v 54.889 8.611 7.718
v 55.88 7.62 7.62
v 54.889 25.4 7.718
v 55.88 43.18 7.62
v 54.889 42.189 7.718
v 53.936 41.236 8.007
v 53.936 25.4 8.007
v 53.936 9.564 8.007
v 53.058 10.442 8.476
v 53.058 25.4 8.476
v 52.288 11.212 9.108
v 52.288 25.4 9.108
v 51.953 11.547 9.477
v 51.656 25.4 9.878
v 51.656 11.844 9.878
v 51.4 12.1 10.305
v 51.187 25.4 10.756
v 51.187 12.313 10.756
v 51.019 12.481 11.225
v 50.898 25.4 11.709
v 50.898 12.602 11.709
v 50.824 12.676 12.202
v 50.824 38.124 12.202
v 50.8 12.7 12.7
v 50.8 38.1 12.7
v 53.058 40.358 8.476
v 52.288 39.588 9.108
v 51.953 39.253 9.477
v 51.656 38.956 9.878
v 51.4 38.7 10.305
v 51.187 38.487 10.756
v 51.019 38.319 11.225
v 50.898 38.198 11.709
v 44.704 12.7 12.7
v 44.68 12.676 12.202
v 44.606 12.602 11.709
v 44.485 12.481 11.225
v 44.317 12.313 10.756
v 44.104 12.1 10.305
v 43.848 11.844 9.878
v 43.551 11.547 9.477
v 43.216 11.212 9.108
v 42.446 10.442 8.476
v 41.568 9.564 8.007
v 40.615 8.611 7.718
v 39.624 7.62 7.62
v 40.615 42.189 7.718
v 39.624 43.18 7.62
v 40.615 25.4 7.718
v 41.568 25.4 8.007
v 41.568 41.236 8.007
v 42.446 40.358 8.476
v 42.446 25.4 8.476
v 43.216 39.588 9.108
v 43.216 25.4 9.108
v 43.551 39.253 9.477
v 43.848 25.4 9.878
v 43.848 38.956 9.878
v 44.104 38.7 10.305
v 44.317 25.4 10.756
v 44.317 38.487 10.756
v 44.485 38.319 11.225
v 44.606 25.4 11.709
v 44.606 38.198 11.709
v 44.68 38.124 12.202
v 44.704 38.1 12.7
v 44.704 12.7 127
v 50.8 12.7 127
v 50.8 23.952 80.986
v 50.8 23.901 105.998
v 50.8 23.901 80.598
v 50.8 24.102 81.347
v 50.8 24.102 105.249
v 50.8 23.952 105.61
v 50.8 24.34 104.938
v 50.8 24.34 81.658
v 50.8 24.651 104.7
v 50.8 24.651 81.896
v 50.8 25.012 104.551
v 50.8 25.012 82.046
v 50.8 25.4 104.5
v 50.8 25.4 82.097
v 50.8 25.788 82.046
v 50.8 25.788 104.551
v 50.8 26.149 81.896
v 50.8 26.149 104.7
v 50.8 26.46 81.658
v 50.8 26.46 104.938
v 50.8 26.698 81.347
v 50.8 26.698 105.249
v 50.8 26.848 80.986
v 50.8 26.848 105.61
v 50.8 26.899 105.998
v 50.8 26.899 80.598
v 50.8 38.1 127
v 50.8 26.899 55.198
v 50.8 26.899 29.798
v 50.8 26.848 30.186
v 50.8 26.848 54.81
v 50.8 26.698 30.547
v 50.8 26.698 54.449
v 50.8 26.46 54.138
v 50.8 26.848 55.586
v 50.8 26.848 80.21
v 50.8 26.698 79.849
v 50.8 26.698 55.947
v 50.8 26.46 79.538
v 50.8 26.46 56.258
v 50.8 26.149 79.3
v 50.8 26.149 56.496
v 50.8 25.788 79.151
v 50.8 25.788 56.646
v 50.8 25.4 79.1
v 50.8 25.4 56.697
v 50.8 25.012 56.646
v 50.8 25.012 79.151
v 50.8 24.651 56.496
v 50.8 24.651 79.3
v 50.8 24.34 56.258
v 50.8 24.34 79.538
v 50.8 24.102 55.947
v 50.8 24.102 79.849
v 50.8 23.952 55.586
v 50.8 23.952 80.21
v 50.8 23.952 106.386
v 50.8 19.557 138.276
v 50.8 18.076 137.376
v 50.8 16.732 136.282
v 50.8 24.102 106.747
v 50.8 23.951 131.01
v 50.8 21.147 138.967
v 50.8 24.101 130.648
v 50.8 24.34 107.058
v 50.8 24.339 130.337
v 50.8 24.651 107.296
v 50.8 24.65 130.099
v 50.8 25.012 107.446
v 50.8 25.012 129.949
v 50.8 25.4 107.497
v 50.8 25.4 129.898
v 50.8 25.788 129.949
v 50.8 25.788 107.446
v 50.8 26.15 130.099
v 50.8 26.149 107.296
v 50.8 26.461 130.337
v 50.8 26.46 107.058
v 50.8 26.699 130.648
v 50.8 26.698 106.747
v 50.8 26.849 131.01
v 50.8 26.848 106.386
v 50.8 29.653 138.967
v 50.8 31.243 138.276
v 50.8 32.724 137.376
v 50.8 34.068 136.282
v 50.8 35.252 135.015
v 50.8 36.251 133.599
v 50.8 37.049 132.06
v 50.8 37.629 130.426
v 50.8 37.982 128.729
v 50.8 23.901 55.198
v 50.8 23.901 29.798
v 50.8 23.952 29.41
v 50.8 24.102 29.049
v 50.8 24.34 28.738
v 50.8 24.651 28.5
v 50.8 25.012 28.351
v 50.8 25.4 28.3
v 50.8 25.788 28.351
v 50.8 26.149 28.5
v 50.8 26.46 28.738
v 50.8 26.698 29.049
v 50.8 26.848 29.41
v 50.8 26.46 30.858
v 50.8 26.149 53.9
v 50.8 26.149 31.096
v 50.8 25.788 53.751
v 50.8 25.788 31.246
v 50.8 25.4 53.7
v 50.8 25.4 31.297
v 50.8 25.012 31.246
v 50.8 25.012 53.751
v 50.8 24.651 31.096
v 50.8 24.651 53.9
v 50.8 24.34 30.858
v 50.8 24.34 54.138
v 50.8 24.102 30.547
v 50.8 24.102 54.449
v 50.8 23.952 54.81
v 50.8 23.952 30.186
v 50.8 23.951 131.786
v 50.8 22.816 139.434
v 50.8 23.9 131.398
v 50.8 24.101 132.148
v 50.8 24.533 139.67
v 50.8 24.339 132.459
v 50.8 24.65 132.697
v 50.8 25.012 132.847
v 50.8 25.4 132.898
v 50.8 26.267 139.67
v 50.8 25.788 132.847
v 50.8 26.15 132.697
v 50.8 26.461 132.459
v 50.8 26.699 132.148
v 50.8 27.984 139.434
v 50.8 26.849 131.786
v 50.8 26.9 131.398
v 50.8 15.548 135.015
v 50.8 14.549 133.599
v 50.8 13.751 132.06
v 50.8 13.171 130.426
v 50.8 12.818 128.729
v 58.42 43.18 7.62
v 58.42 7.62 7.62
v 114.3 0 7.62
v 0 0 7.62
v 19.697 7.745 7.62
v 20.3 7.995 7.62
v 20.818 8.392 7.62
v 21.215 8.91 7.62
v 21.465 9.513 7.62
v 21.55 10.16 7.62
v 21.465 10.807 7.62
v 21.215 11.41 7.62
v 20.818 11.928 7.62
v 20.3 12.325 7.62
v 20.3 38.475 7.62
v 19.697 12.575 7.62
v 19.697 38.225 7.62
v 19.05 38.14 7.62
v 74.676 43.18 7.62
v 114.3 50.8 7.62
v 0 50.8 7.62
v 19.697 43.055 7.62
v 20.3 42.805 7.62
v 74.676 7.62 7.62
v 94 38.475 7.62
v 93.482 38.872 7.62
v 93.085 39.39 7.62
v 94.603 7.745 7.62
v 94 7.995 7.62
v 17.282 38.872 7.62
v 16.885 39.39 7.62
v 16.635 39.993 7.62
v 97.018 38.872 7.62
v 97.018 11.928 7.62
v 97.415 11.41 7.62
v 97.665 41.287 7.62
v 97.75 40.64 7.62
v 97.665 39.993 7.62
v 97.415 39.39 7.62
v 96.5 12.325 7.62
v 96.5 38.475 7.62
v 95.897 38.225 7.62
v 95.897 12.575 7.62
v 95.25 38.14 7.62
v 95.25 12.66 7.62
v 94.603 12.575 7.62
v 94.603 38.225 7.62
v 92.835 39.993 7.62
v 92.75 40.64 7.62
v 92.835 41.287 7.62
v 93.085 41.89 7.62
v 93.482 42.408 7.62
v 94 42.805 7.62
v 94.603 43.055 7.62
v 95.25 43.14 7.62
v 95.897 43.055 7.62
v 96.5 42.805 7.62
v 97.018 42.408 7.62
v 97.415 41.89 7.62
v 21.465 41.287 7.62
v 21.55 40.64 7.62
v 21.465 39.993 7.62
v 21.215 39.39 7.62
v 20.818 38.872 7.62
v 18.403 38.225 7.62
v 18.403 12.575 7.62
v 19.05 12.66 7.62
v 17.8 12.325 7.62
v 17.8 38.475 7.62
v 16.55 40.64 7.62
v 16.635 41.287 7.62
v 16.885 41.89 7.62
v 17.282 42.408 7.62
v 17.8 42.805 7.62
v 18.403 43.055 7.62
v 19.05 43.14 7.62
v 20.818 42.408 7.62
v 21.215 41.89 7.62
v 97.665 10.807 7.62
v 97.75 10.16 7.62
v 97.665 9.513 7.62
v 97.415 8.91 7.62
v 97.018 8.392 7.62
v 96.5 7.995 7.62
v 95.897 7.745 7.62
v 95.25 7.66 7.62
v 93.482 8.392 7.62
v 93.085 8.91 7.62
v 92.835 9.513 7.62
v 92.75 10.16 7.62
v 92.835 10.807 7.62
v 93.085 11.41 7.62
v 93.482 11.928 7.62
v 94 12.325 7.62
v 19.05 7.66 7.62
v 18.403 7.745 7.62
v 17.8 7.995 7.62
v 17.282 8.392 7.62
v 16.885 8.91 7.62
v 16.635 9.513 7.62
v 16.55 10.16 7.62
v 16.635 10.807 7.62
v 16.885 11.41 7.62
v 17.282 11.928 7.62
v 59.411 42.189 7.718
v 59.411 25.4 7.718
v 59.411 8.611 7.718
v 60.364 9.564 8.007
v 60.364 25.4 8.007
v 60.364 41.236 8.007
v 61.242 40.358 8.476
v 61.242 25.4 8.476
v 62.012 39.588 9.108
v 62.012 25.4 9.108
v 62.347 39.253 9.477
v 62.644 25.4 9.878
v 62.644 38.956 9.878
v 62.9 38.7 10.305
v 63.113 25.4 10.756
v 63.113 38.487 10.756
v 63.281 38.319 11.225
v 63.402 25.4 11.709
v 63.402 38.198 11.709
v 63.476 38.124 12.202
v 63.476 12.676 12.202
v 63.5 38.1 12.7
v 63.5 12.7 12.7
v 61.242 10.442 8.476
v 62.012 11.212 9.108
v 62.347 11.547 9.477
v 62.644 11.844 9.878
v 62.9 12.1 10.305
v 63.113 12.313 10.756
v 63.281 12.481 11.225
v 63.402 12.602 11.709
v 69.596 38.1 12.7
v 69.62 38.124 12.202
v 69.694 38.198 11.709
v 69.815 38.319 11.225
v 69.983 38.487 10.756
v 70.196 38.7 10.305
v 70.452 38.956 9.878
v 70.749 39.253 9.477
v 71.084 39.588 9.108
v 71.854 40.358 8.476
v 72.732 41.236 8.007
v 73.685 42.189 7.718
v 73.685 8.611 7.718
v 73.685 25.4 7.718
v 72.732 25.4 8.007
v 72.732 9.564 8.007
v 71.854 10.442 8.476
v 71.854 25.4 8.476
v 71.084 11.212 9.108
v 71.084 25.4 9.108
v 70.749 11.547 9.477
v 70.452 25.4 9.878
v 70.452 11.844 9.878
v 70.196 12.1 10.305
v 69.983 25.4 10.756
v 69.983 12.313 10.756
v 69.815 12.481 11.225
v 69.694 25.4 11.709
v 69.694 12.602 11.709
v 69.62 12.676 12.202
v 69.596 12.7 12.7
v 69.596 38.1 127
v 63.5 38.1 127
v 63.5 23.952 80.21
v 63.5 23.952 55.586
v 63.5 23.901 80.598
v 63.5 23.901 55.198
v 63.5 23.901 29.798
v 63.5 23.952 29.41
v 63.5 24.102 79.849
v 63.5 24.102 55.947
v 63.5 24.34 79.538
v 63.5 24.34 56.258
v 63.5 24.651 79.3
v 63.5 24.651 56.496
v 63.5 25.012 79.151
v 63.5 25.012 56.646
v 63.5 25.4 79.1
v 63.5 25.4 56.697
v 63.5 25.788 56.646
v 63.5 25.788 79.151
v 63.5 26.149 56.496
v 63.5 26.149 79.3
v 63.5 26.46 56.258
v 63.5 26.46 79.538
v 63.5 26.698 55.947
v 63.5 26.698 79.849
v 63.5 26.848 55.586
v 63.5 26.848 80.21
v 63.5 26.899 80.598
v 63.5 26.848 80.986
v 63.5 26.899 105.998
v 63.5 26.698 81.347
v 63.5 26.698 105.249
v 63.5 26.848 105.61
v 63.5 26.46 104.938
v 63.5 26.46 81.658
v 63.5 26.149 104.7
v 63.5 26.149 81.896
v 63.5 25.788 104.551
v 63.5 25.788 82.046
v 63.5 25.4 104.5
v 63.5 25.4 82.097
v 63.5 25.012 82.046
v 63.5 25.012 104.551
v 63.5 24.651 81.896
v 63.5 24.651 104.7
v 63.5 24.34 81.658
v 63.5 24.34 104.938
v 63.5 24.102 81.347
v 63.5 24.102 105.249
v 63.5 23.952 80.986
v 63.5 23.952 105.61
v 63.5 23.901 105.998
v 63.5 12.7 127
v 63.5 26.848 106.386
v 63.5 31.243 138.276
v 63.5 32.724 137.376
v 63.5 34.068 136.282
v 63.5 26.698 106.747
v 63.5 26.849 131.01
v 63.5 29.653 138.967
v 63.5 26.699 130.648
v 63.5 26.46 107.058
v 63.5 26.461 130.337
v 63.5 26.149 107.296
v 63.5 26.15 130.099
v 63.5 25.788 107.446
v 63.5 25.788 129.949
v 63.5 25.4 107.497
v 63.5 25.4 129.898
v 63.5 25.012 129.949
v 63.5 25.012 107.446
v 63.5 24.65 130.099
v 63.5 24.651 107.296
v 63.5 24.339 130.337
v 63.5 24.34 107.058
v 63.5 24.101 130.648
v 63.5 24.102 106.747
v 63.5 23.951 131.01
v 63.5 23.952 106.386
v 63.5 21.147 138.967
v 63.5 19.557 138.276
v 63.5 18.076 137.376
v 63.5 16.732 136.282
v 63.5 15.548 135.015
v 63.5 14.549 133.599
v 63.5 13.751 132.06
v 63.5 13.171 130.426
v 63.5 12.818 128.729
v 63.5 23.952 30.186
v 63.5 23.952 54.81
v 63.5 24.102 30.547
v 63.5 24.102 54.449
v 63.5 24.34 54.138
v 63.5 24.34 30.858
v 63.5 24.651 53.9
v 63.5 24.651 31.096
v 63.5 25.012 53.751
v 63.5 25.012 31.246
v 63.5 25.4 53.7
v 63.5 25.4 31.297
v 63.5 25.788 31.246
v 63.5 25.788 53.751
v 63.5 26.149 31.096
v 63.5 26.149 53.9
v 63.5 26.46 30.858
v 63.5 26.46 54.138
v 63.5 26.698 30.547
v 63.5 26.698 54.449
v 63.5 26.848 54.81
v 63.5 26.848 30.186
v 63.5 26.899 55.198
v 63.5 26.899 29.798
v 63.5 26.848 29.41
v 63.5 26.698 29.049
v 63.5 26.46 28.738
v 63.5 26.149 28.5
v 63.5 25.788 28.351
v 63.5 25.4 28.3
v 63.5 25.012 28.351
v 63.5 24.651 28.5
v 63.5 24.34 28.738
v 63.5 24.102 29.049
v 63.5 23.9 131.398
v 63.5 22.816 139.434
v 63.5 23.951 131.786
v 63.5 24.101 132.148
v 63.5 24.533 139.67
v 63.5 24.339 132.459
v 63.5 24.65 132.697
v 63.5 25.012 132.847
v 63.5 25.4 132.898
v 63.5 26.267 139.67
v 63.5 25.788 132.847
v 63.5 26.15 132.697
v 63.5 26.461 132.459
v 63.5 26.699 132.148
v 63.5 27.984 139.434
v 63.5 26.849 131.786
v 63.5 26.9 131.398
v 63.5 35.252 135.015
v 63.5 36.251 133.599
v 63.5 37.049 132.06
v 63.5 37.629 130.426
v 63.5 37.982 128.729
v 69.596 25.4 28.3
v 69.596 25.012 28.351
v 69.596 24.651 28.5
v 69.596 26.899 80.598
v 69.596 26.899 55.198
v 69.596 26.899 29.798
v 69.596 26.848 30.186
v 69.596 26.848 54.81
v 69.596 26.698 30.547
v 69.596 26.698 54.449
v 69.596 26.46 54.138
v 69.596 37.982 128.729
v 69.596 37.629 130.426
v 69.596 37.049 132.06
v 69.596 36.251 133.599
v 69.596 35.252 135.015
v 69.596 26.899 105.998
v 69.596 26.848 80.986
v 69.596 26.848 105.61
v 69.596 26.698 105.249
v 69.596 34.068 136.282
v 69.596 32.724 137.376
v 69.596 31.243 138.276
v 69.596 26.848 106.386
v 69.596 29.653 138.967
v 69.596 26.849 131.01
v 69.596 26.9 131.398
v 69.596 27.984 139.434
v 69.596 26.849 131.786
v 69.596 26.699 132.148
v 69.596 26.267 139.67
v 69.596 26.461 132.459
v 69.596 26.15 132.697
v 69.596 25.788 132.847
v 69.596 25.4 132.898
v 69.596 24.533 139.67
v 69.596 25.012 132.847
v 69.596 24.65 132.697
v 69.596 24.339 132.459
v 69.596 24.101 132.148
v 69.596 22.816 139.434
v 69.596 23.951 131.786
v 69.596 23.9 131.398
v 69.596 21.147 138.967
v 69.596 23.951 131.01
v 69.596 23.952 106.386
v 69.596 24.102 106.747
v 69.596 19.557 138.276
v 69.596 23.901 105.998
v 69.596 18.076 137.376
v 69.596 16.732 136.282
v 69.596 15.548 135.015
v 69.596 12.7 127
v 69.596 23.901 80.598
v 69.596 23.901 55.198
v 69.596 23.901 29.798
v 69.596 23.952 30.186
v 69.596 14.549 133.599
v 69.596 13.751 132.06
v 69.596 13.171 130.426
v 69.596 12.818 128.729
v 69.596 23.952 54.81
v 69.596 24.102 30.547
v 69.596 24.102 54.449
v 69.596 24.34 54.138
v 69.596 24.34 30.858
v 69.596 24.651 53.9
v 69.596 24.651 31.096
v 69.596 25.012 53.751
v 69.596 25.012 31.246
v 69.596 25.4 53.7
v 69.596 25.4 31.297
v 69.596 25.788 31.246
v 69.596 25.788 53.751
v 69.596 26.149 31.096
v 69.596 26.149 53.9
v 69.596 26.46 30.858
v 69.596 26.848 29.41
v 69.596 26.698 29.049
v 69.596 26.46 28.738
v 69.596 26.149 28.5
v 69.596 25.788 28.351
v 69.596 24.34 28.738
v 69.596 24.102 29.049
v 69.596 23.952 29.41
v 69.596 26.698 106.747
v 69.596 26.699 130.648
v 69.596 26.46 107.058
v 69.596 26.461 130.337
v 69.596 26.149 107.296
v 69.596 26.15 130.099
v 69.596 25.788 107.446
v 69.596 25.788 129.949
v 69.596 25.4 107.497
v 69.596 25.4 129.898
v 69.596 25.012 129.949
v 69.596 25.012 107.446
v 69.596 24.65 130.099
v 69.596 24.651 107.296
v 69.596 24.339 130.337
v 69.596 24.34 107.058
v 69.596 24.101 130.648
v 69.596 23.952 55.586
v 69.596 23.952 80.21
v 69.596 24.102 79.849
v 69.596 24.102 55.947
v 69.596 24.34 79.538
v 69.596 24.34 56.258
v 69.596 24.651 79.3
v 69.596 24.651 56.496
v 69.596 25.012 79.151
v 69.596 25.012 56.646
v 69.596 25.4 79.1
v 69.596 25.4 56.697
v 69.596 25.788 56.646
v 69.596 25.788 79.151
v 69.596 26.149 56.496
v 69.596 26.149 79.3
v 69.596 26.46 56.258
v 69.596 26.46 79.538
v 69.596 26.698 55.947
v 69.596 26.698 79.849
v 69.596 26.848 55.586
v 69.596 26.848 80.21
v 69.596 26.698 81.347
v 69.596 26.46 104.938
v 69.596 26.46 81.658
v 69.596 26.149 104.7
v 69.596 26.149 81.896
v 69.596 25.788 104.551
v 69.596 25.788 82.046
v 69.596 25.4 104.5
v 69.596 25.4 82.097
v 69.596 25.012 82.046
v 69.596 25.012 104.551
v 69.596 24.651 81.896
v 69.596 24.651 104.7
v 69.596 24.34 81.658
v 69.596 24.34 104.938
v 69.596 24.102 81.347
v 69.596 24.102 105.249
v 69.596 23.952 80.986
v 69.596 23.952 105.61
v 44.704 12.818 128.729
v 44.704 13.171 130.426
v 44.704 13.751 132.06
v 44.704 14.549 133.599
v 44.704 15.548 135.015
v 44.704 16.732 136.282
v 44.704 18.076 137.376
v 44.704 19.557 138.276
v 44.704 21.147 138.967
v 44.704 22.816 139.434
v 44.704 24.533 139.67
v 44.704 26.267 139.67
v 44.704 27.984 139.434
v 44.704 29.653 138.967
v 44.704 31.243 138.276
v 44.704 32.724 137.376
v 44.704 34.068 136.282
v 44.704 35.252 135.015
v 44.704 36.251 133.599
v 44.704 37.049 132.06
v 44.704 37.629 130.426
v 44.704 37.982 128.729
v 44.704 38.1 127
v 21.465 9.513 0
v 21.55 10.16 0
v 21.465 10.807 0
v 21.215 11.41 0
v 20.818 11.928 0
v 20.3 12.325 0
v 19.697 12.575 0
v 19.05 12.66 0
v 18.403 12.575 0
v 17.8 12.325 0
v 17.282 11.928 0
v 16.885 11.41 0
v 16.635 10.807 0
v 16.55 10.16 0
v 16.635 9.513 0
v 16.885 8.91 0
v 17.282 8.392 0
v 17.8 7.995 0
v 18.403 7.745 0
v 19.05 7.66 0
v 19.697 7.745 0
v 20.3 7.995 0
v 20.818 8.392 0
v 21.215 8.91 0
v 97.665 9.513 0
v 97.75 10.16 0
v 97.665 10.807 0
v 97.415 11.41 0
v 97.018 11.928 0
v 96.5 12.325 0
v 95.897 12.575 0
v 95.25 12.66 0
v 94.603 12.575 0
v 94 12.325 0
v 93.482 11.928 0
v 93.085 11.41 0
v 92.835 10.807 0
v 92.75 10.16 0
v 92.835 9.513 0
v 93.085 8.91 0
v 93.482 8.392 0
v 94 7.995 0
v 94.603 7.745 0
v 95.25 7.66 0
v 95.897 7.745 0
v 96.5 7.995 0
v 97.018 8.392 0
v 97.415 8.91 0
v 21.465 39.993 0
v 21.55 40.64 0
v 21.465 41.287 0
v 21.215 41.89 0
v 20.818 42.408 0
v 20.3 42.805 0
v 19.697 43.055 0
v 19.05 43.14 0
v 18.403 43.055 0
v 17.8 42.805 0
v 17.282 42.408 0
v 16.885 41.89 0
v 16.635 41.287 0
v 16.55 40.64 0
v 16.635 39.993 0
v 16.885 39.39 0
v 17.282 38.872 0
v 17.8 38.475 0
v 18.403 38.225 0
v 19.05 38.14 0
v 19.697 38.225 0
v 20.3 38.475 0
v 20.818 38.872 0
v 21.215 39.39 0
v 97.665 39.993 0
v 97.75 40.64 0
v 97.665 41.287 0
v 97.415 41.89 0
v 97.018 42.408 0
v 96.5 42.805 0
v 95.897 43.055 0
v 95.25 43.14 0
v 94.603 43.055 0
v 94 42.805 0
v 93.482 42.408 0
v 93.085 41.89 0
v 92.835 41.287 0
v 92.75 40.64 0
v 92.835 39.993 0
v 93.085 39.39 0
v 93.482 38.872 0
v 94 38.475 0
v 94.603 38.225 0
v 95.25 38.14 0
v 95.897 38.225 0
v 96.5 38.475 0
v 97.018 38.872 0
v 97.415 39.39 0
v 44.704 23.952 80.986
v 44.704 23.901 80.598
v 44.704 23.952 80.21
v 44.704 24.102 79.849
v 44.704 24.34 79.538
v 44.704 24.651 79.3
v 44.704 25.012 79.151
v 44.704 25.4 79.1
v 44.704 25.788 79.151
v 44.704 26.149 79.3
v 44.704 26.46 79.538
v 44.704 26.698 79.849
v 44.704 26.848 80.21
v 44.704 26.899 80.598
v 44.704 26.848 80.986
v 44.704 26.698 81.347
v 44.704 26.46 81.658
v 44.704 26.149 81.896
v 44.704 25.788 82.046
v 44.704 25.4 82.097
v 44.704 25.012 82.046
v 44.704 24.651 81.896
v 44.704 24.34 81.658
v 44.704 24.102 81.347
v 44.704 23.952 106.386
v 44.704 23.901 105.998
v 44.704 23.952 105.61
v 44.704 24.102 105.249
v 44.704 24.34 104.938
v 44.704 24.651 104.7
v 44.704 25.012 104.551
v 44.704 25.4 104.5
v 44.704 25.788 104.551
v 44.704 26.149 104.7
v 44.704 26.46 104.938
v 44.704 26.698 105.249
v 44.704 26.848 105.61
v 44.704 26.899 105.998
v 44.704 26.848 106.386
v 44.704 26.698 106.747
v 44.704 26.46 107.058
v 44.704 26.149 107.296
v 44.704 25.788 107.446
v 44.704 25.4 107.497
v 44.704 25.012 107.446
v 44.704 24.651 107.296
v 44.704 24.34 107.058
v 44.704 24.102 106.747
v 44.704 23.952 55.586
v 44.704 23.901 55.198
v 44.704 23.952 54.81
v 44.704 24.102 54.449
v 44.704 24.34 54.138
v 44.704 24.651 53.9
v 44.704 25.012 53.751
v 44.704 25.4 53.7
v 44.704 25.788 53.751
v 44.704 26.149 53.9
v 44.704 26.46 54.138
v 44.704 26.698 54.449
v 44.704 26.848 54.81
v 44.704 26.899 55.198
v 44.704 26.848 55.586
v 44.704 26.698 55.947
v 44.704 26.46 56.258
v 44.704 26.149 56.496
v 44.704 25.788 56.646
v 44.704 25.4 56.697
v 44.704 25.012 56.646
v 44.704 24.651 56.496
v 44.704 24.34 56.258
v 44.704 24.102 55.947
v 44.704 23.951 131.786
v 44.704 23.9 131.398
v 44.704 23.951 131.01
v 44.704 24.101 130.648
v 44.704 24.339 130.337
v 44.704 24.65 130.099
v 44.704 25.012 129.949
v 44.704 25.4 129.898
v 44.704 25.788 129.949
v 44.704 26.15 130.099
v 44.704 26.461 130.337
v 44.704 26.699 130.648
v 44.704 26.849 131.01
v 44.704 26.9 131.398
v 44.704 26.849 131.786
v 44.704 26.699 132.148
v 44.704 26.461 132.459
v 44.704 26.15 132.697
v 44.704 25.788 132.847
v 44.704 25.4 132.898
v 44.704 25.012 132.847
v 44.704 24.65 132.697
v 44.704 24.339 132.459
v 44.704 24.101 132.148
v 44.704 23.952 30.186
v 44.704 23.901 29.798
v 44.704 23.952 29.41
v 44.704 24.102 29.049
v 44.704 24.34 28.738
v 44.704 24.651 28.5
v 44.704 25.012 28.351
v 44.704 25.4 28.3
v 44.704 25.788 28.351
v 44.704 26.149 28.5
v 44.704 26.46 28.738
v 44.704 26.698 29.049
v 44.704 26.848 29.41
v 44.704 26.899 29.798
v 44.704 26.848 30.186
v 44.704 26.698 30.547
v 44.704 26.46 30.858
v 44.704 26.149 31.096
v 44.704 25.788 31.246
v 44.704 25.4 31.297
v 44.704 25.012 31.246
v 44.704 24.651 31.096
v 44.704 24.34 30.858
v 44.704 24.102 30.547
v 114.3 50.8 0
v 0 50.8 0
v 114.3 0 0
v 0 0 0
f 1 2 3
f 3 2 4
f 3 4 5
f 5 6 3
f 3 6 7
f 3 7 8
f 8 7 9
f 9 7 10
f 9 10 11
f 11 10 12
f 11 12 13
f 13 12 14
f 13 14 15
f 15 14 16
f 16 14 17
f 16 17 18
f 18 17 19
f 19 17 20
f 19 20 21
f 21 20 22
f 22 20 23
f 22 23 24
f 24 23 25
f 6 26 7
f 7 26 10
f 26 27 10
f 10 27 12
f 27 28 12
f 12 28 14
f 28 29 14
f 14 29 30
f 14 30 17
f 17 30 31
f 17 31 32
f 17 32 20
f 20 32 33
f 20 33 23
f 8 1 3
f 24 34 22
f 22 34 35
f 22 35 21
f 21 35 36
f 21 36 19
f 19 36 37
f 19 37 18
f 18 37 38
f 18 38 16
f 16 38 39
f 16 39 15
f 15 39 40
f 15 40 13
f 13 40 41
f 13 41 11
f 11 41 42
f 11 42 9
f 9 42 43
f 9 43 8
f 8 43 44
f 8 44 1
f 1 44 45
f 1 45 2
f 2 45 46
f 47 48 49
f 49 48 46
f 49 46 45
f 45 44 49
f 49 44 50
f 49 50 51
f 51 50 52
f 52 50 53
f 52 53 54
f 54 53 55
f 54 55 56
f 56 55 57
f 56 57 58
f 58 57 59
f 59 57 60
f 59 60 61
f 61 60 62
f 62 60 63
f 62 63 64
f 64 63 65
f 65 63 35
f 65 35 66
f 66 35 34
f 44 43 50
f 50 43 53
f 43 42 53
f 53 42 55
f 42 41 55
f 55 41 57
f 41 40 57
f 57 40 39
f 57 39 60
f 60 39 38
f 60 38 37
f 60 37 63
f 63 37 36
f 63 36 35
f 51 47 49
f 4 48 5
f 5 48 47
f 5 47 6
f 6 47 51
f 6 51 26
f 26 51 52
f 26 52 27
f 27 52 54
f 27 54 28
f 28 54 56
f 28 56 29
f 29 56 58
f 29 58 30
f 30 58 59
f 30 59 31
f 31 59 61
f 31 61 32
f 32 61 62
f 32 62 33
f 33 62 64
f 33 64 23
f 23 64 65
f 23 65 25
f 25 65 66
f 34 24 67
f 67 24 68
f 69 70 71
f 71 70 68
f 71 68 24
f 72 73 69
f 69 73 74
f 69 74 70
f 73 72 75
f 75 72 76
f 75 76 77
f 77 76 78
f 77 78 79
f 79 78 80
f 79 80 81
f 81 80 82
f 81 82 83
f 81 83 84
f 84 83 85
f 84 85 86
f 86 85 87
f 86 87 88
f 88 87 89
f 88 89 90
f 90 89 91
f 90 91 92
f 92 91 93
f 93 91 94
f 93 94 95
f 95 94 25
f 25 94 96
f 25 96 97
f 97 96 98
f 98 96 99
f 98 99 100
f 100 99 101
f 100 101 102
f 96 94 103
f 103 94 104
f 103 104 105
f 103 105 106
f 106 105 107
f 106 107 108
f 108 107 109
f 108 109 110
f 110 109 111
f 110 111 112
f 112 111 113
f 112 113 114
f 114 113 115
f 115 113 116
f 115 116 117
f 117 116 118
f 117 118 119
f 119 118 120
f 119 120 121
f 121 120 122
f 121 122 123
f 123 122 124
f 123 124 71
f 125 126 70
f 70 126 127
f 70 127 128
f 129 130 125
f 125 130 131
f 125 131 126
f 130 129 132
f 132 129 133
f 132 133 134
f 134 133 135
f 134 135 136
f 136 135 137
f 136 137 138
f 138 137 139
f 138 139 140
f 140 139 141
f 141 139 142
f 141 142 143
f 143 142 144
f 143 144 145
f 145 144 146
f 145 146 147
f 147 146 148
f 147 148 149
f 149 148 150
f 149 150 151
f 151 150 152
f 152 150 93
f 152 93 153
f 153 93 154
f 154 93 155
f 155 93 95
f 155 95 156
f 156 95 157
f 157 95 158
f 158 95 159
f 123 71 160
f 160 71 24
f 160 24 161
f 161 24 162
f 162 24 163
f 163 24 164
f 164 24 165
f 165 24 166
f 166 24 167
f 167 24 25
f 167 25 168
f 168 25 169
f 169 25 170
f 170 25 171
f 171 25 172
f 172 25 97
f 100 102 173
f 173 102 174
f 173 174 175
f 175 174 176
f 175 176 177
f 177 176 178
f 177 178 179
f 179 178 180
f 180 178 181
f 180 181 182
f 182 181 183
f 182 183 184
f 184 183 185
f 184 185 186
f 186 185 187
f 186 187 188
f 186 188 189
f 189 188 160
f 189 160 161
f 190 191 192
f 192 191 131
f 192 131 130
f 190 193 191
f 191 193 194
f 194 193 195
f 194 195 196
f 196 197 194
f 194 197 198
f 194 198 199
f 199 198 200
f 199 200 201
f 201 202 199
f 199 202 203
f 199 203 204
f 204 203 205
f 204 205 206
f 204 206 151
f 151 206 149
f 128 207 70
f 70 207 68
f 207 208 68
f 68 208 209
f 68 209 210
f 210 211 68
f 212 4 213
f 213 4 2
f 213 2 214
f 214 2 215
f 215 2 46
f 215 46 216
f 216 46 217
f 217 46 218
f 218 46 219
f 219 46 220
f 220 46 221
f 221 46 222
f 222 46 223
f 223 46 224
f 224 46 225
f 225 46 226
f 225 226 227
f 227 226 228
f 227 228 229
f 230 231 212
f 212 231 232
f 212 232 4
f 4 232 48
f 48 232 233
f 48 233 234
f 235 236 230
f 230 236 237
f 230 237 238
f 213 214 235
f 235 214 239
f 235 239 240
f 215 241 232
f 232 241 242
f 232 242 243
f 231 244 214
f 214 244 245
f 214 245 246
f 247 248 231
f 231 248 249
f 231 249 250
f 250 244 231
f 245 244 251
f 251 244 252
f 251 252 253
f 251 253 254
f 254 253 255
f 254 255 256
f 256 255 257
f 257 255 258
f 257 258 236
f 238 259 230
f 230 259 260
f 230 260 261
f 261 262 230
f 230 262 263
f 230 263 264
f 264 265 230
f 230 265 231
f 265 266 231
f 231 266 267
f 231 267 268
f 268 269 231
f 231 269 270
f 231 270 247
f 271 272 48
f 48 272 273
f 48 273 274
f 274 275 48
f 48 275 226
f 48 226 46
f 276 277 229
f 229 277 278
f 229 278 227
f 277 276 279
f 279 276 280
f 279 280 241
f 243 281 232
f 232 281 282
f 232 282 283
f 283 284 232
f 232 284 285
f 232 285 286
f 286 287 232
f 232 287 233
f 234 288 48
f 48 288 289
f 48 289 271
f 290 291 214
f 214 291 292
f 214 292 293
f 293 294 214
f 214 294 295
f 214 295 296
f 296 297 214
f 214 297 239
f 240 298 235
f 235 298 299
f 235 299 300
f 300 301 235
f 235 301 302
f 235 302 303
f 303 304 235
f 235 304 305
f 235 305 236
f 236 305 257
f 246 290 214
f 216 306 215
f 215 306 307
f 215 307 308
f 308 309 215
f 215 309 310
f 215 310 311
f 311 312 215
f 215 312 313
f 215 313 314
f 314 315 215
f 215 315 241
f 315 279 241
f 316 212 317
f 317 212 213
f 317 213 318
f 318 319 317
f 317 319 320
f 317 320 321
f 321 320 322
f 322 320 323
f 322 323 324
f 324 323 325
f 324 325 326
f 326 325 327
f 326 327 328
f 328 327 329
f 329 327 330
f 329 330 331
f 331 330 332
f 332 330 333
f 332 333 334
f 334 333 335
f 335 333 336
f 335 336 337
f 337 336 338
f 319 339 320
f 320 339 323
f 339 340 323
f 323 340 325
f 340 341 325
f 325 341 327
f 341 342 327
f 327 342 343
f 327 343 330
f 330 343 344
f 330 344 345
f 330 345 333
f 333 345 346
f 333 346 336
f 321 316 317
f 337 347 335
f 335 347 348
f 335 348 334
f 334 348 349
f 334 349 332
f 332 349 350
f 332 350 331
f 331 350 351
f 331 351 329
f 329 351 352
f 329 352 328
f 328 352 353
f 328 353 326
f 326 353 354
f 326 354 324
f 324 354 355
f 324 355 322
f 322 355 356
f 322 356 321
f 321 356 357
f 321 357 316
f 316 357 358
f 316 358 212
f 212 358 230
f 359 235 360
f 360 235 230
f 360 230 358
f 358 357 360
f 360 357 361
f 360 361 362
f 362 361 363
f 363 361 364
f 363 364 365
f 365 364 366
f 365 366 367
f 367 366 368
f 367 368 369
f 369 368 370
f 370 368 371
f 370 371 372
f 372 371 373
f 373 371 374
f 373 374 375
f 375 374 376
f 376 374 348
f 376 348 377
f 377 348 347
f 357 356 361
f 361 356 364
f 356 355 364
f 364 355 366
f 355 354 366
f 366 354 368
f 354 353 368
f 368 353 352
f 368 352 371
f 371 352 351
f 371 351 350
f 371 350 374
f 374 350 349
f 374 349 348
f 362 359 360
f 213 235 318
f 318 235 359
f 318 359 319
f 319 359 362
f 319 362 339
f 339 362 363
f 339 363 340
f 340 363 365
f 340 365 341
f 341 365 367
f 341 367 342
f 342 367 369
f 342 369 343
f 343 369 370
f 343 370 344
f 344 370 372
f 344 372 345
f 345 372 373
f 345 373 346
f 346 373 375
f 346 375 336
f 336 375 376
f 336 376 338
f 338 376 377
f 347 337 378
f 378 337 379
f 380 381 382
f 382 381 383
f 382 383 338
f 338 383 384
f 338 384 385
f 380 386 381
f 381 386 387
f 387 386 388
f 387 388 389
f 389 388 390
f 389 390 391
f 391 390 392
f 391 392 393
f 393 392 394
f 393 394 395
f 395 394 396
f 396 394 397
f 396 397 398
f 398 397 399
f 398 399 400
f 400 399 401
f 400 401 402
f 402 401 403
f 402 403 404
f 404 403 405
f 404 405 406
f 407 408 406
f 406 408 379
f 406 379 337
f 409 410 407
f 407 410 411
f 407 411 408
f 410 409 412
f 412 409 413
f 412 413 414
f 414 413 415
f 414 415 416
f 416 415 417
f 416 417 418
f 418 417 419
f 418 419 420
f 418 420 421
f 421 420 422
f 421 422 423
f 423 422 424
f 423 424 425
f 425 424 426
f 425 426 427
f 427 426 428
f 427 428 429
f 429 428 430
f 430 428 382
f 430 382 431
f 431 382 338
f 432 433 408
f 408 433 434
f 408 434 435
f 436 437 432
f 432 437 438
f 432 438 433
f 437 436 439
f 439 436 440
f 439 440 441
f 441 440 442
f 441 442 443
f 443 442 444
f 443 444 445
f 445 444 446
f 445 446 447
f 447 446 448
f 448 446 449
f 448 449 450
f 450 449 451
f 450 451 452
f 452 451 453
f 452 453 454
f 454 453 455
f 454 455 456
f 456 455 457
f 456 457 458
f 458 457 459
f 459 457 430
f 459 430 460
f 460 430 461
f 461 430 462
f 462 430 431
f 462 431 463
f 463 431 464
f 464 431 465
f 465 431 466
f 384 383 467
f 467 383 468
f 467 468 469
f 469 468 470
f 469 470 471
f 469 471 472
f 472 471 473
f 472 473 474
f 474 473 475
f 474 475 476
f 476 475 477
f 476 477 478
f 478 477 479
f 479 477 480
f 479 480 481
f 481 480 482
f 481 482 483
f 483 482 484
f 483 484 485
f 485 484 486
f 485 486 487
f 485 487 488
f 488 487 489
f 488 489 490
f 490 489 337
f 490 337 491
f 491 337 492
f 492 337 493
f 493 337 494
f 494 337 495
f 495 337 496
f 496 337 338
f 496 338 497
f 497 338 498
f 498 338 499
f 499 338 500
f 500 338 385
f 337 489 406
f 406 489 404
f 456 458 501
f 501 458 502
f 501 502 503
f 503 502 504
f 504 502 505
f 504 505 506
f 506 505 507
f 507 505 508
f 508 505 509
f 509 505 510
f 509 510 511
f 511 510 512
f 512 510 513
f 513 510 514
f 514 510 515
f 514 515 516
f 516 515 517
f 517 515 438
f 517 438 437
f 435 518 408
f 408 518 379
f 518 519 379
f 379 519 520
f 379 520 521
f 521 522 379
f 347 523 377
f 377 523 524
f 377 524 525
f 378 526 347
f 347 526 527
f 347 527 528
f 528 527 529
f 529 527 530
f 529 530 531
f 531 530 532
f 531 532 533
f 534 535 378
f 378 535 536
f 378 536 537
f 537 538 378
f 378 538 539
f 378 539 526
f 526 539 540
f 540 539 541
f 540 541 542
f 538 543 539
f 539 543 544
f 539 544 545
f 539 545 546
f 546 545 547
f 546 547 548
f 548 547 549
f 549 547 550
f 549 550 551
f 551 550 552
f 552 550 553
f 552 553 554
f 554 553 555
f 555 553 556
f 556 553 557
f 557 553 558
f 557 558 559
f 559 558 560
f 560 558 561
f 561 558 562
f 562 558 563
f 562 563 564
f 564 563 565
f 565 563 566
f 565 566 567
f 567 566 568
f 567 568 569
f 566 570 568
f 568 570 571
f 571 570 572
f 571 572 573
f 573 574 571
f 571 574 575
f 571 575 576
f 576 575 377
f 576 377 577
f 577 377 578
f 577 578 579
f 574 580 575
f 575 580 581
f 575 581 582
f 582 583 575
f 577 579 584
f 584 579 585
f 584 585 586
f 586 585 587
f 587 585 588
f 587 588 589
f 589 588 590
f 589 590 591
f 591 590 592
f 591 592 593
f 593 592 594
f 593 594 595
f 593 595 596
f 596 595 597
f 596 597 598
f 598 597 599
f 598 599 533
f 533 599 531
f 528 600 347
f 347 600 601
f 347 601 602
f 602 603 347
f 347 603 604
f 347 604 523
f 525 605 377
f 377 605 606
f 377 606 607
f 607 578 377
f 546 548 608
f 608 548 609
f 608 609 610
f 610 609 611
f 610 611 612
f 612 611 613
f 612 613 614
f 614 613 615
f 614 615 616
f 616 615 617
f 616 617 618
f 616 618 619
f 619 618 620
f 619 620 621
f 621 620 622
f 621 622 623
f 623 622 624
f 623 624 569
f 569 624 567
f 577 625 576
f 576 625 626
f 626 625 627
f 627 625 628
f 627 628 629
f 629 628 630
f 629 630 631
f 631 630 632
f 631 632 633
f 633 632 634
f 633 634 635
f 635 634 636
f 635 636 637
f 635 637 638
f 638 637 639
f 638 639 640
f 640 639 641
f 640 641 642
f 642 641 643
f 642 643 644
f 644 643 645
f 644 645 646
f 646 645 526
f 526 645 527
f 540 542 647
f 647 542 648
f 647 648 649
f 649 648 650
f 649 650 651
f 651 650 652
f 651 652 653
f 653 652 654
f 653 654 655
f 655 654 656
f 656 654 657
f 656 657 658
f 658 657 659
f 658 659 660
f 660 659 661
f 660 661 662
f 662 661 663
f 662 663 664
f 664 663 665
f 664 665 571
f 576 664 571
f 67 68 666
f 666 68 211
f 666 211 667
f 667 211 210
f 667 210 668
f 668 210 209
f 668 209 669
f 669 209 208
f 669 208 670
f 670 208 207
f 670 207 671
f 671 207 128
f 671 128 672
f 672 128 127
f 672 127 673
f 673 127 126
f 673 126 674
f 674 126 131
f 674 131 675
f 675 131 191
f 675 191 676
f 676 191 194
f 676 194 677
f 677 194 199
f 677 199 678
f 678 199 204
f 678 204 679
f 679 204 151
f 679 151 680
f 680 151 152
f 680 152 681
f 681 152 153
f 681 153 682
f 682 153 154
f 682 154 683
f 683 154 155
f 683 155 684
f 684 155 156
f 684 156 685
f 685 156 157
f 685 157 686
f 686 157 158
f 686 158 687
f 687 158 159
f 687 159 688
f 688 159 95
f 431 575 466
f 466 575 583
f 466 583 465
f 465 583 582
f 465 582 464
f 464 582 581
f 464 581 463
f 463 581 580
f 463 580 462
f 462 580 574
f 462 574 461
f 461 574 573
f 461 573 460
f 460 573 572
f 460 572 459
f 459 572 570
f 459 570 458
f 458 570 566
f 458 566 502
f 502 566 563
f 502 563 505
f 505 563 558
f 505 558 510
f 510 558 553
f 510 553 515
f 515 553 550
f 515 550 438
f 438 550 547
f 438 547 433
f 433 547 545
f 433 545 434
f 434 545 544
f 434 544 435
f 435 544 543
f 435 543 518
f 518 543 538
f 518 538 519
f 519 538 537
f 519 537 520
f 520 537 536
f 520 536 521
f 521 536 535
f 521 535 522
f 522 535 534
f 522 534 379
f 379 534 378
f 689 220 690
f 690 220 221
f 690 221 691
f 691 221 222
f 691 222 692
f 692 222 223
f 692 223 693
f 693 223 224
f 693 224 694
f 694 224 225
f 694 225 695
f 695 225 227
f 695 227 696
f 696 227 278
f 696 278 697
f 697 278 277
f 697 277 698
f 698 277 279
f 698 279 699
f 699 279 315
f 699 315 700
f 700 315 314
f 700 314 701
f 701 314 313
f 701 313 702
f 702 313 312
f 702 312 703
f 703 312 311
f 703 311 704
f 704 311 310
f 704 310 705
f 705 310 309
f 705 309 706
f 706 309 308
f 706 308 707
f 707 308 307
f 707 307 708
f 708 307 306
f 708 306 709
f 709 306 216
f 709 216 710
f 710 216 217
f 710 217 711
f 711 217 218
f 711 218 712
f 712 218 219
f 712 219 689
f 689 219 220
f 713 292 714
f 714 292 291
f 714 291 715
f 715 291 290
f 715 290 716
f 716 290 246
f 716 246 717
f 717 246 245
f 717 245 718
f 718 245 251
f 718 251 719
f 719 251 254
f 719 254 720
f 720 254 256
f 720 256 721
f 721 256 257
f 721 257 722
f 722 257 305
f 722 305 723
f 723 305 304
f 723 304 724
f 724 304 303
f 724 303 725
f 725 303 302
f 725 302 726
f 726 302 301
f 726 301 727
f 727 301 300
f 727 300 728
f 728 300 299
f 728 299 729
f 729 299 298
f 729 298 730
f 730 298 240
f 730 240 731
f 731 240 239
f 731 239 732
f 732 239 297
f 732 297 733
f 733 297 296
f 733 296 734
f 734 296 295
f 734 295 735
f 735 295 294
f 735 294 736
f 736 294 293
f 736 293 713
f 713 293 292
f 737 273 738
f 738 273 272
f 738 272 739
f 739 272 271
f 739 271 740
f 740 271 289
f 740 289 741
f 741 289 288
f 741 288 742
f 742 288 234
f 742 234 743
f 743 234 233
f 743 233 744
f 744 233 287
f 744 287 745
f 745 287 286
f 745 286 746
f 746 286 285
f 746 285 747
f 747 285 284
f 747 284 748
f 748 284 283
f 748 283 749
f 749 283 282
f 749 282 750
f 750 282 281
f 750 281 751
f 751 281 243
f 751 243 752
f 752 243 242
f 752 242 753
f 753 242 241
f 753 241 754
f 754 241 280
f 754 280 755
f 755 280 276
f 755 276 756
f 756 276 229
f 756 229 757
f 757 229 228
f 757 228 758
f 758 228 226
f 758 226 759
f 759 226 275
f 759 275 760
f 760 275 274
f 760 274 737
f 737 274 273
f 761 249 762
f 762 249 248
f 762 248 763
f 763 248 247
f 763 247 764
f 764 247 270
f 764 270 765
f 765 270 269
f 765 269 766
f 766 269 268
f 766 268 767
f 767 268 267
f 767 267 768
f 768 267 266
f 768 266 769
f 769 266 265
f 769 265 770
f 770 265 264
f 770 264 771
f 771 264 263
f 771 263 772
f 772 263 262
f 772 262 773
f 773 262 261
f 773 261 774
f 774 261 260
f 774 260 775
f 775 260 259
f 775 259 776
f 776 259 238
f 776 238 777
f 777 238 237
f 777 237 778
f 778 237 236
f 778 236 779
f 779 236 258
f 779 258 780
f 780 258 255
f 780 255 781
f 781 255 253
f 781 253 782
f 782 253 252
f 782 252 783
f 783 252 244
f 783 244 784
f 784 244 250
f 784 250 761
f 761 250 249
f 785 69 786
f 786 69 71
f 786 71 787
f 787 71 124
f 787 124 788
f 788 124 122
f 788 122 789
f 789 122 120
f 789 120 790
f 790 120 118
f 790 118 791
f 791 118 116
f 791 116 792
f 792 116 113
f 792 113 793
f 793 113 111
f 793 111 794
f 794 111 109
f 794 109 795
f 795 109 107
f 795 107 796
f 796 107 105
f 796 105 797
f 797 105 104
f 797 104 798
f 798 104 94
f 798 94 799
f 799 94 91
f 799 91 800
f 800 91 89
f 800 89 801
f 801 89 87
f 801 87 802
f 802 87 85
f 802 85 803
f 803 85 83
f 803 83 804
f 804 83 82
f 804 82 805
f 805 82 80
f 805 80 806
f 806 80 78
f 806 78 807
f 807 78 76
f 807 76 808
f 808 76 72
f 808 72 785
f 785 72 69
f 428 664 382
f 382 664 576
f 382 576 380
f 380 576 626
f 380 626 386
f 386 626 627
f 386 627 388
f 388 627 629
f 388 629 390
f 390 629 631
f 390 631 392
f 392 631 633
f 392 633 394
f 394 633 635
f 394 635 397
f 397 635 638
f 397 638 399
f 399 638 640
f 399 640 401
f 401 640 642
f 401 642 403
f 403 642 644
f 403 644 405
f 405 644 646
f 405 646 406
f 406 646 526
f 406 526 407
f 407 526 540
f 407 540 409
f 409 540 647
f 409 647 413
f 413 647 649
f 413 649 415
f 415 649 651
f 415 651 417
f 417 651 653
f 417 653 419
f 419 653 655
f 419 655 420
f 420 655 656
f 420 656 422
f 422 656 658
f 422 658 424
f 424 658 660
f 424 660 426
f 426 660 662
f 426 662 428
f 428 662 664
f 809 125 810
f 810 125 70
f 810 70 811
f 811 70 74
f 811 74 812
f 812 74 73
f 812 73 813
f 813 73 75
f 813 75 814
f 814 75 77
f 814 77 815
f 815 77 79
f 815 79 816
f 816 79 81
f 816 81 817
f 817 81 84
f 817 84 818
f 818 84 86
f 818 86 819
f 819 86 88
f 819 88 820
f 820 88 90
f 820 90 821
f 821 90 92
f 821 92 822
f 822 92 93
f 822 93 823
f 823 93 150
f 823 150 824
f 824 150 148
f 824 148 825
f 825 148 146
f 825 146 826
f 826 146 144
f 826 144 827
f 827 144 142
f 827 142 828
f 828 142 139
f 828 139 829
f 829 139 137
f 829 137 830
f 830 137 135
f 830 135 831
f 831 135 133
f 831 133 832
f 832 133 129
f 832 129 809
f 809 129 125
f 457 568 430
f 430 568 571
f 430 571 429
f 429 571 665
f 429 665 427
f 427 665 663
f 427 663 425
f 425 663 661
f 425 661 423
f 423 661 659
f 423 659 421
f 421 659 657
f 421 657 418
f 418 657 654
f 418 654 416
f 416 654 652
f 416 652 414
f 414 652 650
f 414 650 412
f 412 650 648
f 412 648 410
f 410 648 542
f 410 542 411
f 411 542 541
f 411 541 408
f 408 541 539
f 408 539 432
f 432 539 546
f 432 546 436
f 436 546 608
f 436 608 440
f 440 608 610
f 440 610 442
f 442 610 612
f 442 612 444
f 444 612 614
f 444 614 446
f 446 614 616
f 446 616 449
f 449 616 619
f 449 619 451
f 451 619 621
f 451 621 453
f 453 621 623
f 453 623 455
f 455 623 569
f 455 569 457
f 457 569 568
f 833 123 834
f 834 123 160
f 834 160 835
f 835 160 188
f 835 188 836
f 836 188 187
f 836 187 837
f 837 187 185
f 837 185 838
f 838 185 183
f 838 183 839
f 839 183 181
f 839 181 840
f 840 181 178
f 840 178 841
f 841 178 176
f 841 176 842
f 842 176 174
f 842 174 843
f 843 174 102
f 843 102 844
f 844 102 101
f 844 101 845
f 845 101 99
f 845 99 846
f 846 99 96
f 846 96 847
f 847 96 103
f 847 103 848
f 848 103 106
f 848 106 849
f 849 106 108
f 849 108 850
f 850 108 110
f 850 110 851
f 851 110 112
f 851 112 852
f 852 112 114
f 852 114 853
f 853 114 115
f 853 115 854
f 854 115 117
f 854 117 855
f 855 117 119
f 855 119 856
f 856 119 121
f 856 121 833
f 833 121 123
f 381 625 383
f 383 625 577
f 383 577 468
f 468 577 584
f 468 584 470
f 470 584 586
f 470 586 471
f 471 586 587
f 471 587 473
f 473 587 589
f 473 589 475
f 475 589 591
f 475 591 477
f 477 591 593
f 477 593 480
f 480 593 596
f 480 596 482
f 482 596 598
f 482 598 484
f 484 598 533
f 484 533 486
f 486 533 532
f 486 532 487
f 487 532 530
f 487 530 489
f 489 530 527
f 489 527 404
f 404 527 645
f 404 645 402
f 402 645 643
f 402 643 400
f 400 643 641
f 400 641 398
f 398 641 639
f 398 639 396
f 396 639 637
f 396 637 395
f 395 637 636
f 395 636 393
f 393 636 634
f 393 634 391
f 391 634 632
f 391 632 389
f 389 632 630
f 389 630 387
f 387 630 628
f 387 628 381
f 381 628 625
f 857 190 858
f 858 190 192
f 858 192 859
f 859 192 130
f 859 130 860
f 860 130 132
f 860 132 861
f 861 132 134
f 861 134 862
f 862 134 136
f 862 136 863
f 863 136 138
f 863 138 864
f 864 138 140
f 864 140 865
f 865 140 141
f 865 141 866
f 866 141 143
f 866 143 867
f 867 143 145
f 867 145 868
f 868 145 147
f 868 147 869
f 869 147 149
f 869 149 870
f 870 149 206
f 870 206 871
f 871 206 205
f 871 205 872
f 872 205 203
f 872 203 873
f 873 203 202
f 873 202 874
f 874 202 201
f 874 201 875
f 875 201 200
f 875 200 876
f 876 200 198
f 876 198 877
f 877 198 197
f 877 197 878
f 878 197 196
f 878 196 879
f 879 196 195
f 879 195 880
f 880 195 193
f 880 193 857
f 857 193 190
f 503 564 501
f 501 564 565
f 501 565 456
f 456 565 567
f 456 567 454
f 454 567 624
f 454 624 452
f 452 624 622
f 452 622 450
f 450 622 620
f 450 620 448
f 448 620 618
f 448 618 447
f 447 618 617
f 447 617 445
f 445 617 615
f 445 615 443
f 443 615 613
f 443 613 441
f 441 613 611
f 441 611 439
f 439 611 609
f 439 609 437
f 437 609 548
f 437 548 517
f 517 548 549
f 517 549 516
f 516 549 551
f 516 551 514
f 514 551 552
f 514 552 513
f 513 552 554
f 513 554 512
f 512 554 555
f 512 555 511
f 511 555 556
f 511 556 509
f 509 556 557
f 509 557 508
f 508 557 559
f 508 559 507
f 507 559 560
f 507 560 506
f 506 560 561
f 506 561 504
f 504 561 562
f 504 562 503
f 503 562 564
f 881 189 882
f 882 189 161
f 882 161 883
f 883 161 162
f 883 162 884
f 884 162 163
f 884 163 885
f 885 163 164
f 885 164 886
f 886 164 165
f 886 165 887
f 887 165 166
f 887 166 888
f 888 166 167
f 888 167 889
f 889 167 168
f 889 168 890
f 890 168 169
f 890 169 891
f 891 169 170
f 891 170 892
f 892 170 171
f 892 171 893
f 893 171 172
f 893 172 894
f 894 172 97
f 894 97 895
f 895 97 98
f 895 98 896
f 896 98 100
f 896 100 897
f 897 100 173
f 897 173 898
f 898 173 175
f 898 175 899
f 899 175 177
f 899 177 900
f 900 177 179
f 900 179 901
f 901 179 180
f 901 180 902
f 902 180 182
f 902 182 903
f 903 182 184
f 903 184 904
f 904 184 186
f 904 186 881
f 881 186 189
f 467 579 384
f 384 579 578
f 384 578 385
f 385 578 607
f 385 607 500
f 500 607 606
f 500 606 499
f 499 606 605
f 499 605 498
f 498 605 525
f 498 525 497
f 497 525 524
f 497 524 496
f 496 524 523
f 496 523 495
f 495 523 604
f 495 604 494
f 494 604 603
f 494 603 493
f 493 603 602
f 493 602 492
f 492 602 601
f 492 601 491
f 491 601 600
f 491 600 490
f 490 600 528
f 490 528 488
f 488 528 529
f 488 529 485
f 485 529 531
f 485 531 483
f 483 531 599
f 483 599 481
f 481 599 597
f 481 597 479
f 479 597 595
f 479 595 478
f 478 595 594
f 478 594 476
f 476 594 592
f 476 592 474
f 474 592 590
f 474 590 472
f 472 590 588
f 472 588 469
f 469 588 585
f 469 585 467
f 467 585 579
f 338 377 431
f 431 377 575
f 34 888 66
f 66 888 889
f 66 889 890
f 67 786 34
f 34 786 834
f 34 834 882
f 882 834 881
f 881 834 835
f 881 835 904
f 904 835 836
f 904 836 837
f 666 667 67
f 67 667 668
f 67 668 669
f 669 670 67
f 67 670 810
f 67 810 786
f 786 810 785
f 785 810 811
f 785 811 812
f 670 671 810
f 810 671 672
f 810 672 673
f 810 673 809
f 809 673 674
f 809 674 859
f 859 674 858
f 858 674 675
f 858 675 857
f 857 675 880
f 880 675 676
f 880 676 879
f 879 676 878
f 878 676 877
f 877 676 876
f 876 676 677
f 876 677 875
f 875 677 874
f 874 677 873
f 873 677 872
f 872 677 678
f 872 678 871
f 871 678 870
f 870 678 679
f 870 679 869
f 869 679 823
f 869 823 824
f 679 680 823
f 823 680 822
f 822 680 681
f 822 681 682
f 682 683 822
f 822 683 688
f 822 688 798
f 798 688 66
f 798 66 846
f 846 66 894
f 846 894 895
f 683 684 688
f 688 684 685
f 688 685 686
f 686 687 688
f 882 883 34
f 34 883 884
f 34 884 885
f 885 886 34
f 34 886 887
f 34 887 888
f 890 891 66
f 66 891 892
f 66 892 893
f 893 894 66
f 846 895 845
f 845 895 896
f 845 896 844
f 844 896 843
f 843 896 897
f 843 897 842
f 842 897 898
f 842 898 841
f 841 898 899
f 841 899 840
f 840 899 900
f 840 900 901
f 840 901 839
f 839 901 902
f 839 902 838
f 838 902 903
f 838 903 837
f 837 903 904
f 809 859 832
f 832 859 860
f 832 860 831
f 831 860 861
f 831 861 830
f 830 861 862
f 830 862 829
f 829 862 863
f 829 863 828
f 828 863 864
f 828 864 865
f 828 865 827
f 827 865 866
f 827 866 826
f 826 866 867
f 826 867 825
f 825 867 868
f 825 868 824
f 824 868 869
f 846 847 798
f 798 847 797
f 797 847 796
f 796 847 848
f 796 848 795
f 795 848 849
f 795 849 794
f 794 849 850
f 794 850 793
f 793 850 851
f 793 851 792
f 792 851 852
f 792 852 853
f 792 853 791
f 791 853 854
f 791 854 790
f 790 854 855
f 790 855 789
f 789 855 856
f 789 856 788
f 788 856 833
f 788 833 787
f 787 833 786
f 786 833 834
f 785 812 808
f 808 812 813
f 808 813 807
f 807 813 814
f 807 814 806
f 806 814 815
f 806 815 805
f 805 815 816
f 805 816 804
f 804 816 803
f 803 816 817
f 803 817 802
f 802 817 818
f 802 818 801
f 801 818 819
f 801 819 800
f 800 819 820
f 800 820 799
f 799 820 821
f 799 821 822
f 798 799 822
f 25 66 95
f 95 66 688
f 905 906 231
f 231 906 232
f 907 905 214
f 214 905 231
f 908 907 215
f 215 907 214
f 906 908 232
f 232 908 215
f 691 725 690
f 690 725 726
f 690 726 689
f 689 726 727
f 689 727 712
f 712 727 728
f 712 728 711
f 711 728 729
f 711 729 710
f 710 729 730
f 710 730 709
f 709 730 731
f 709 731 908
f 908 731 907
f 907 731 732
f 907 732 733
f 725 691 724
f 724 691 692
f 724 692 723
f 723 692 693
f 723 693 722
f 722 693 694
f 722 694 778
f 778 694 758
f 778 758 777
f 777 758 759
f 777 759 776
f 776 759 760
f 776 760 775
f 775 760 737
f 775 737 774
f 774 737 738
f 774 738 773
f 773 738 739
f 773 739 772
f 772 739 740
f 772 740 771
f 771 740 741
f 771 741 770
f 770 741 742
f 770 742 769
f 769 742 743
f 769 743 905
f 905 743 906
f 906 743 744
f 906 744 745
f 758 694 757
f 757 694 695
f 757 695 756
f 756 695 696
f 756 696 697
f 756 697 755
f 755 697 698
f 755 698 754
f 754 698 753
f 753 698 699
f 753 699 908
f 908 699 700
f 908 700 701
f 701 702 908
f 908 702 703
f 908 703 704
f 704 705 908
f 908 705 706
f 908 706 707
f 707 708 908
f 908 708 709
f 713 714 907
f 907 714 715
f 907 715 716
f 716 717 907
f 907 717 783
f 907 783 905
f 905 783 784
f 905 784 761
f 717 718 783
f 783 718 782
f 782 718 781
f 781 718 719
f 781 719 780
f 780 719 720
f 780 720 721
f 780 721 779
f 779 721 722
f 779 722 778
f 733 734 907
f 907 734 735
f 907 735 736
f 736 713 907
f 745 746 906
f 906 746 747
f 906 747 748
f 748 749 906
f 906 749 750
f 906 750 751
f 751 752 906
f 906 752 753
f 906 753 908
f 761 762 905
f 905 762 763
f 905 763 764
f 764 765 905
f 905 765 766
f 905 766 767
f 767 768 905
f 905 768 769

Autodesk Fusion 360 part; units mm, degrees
sketch "Sketch1" plane through (0, 0, 0) normal (0, 0, 1) x (1, 0, 0)
  line L0 (0, 0) -> (114.3, 0)
  line L1 (114.3, 0) -> (114.3, 50.8)
  line L2 (114.3, 50.8) -> (0, 50.8)
  line L3 (0, 50.8) -> (0, 0)
  point P0 (114.3, 25.4)
  point P1 (57.15, 0)
  dimension "d1" = 114.3
  dimension "d4" = 50.8
extrude "Extrude4" add sketch "Sketch1" along normal blind 7.62
sketch "Sketch2" plane through (0, 0, 7.62) normal (0, 0, 1) x (-1, 0, 0)
  line L0 (0, -50.8) -> (0, 0)
  line L1 (0, 0) -> (-114.3, 0)
  line L2 (-114.3, 0) -> (-114.3, -50.8)
  line L3 (-114.3, -50.8) -> (0, -50.8)
  line L4 (-44.704, -38.1) -> (-69.596, -38.1)
  line L5 (-69.596, -38.1) -> (-69.596, -12.7)
  line L6 (-69.596, -12.7) -> (-44.704, -12.7)
  line L7 (-44.704, -12.7) -> (-44.704, -38.1)
  line L8 (-63.5, -38.1) -> (-50.8, -38.1)
  line L9 (-50.8, -38.1) -> (-50.8, -12.7)
  line L10 (-50.8, -12.7) -> (-63.5, -12.7)
  line L11 (-63.5, -12.7) -> (-63.5, -38.1)
  line L12 (-63.5, -38.1) -> (-50.8, -12.7) construction
  line L13 (-50.8, -38.1) -> (-63.5, -12.7) construction
  circle A0 centre (-19.05, -40.64) radius 2.5
  line L14 (-57.15, -50.8) -> (-57.15, 0) construction
  line L15 (0, -25.4) -> (-114.3, -25.4) construction
  circle A1 centre (-95.25, -40.64) radius 2.5
  circle A2 centre (-19.05, -10.16) radius 2.5
  circle A3 centre (-95.25, -10.16) radius 2.5
  point P0 (-57.15, -38.1)
  point P1 (-69.596, -25.4)
  point P2 (-114.3, -25.4)
  point P3 (-57.15, 0)
  point P4 (-57.15, -25.4)
  dimension "d15" = 25.4
  dimension "d23" = 12.7
  dimension "d24" = 5
  dimension "d25" = 76.2
  dimension "d26" = 30.48
  dimension "d27" = 15.24
  dimension "d43" = 6.096
  dimension "d45" = 6.096
extrude "Extrude5" add sketch "Sketch2" along normal blind 132.08 contours L4 L6 L7 L9 | L4 L5 L6 L11
sketch "Sketch3" plane through (69.596, 0, 0) normal (1, 0, 0) x (0, 1, 0)
  line L0 (12.7, 7.62) -> (38.1, 7.62)
  line L1 (38.1, 7.62) -> (38.1, 139.7)
  line L2 (38.1, 139.7) -> (12.7, 139.7)
  line L3 (12.7, 139.7) -> (12.7, 7.62)
  circle A0 centre (25.4, 131.3981) radius 1.5
  circle A1 centre (25.4, 105.9981) radius 1.4986
  line L4 (25.4, 7.62) -> (25.4, 27.94) construction
  circle A2 centre (25.4, 80.5981) radius 1.4986
  circle A3 centre (25.4, 55.1981) radius 1.4986
  circle A4 centre (25.4, 29.7981) radius 1.4986
  point P0 (25.4, 139.7)
  dimension "d19" = 3
  dimension "d20" = 2.9972
  dimension "d21" = 25.4
  dimension "d37" = 2.9972
  dimension "d38" = 2.9972
  dimension "d39" = 2.9972
  dimension "d40" = 25.4
  dimension "d41" = 25.4
  dimension "d42" = 25.4
extrude "Extrude6" cut sketch "Sketch3" against normal through all contours A0 | A1 | A2 | A3 | A4
extrude "Extrude7" cut sketch "Sketch2" against normal through all contours A0 | A1 | A2 | A3
fillet "Fillet9" radius 12.7 4 edges at (66.548, 12.7, 139.7) (47.752, 12.7, 139.7) (47.752, 38.1, 139.7) (66.548, 38.1, 139.7)
fillet "Fillet10" radius 5.08 8 edges at (69.596, 25.4, 7.62) (66.548, 38.1, 7.62) (63.5, 25.4, 7.62) (44.704, 25.4, 7.62) (47.752, 38.1, 7.62) (50.8, 25.4, 7.62) (47.752, 12.7, 7.62) (66.548, 12.7, 7.62)
equation "d37 = d20"
equation "d38 = d20"
equation "d39 = d20"
equation "d45 = d43"
